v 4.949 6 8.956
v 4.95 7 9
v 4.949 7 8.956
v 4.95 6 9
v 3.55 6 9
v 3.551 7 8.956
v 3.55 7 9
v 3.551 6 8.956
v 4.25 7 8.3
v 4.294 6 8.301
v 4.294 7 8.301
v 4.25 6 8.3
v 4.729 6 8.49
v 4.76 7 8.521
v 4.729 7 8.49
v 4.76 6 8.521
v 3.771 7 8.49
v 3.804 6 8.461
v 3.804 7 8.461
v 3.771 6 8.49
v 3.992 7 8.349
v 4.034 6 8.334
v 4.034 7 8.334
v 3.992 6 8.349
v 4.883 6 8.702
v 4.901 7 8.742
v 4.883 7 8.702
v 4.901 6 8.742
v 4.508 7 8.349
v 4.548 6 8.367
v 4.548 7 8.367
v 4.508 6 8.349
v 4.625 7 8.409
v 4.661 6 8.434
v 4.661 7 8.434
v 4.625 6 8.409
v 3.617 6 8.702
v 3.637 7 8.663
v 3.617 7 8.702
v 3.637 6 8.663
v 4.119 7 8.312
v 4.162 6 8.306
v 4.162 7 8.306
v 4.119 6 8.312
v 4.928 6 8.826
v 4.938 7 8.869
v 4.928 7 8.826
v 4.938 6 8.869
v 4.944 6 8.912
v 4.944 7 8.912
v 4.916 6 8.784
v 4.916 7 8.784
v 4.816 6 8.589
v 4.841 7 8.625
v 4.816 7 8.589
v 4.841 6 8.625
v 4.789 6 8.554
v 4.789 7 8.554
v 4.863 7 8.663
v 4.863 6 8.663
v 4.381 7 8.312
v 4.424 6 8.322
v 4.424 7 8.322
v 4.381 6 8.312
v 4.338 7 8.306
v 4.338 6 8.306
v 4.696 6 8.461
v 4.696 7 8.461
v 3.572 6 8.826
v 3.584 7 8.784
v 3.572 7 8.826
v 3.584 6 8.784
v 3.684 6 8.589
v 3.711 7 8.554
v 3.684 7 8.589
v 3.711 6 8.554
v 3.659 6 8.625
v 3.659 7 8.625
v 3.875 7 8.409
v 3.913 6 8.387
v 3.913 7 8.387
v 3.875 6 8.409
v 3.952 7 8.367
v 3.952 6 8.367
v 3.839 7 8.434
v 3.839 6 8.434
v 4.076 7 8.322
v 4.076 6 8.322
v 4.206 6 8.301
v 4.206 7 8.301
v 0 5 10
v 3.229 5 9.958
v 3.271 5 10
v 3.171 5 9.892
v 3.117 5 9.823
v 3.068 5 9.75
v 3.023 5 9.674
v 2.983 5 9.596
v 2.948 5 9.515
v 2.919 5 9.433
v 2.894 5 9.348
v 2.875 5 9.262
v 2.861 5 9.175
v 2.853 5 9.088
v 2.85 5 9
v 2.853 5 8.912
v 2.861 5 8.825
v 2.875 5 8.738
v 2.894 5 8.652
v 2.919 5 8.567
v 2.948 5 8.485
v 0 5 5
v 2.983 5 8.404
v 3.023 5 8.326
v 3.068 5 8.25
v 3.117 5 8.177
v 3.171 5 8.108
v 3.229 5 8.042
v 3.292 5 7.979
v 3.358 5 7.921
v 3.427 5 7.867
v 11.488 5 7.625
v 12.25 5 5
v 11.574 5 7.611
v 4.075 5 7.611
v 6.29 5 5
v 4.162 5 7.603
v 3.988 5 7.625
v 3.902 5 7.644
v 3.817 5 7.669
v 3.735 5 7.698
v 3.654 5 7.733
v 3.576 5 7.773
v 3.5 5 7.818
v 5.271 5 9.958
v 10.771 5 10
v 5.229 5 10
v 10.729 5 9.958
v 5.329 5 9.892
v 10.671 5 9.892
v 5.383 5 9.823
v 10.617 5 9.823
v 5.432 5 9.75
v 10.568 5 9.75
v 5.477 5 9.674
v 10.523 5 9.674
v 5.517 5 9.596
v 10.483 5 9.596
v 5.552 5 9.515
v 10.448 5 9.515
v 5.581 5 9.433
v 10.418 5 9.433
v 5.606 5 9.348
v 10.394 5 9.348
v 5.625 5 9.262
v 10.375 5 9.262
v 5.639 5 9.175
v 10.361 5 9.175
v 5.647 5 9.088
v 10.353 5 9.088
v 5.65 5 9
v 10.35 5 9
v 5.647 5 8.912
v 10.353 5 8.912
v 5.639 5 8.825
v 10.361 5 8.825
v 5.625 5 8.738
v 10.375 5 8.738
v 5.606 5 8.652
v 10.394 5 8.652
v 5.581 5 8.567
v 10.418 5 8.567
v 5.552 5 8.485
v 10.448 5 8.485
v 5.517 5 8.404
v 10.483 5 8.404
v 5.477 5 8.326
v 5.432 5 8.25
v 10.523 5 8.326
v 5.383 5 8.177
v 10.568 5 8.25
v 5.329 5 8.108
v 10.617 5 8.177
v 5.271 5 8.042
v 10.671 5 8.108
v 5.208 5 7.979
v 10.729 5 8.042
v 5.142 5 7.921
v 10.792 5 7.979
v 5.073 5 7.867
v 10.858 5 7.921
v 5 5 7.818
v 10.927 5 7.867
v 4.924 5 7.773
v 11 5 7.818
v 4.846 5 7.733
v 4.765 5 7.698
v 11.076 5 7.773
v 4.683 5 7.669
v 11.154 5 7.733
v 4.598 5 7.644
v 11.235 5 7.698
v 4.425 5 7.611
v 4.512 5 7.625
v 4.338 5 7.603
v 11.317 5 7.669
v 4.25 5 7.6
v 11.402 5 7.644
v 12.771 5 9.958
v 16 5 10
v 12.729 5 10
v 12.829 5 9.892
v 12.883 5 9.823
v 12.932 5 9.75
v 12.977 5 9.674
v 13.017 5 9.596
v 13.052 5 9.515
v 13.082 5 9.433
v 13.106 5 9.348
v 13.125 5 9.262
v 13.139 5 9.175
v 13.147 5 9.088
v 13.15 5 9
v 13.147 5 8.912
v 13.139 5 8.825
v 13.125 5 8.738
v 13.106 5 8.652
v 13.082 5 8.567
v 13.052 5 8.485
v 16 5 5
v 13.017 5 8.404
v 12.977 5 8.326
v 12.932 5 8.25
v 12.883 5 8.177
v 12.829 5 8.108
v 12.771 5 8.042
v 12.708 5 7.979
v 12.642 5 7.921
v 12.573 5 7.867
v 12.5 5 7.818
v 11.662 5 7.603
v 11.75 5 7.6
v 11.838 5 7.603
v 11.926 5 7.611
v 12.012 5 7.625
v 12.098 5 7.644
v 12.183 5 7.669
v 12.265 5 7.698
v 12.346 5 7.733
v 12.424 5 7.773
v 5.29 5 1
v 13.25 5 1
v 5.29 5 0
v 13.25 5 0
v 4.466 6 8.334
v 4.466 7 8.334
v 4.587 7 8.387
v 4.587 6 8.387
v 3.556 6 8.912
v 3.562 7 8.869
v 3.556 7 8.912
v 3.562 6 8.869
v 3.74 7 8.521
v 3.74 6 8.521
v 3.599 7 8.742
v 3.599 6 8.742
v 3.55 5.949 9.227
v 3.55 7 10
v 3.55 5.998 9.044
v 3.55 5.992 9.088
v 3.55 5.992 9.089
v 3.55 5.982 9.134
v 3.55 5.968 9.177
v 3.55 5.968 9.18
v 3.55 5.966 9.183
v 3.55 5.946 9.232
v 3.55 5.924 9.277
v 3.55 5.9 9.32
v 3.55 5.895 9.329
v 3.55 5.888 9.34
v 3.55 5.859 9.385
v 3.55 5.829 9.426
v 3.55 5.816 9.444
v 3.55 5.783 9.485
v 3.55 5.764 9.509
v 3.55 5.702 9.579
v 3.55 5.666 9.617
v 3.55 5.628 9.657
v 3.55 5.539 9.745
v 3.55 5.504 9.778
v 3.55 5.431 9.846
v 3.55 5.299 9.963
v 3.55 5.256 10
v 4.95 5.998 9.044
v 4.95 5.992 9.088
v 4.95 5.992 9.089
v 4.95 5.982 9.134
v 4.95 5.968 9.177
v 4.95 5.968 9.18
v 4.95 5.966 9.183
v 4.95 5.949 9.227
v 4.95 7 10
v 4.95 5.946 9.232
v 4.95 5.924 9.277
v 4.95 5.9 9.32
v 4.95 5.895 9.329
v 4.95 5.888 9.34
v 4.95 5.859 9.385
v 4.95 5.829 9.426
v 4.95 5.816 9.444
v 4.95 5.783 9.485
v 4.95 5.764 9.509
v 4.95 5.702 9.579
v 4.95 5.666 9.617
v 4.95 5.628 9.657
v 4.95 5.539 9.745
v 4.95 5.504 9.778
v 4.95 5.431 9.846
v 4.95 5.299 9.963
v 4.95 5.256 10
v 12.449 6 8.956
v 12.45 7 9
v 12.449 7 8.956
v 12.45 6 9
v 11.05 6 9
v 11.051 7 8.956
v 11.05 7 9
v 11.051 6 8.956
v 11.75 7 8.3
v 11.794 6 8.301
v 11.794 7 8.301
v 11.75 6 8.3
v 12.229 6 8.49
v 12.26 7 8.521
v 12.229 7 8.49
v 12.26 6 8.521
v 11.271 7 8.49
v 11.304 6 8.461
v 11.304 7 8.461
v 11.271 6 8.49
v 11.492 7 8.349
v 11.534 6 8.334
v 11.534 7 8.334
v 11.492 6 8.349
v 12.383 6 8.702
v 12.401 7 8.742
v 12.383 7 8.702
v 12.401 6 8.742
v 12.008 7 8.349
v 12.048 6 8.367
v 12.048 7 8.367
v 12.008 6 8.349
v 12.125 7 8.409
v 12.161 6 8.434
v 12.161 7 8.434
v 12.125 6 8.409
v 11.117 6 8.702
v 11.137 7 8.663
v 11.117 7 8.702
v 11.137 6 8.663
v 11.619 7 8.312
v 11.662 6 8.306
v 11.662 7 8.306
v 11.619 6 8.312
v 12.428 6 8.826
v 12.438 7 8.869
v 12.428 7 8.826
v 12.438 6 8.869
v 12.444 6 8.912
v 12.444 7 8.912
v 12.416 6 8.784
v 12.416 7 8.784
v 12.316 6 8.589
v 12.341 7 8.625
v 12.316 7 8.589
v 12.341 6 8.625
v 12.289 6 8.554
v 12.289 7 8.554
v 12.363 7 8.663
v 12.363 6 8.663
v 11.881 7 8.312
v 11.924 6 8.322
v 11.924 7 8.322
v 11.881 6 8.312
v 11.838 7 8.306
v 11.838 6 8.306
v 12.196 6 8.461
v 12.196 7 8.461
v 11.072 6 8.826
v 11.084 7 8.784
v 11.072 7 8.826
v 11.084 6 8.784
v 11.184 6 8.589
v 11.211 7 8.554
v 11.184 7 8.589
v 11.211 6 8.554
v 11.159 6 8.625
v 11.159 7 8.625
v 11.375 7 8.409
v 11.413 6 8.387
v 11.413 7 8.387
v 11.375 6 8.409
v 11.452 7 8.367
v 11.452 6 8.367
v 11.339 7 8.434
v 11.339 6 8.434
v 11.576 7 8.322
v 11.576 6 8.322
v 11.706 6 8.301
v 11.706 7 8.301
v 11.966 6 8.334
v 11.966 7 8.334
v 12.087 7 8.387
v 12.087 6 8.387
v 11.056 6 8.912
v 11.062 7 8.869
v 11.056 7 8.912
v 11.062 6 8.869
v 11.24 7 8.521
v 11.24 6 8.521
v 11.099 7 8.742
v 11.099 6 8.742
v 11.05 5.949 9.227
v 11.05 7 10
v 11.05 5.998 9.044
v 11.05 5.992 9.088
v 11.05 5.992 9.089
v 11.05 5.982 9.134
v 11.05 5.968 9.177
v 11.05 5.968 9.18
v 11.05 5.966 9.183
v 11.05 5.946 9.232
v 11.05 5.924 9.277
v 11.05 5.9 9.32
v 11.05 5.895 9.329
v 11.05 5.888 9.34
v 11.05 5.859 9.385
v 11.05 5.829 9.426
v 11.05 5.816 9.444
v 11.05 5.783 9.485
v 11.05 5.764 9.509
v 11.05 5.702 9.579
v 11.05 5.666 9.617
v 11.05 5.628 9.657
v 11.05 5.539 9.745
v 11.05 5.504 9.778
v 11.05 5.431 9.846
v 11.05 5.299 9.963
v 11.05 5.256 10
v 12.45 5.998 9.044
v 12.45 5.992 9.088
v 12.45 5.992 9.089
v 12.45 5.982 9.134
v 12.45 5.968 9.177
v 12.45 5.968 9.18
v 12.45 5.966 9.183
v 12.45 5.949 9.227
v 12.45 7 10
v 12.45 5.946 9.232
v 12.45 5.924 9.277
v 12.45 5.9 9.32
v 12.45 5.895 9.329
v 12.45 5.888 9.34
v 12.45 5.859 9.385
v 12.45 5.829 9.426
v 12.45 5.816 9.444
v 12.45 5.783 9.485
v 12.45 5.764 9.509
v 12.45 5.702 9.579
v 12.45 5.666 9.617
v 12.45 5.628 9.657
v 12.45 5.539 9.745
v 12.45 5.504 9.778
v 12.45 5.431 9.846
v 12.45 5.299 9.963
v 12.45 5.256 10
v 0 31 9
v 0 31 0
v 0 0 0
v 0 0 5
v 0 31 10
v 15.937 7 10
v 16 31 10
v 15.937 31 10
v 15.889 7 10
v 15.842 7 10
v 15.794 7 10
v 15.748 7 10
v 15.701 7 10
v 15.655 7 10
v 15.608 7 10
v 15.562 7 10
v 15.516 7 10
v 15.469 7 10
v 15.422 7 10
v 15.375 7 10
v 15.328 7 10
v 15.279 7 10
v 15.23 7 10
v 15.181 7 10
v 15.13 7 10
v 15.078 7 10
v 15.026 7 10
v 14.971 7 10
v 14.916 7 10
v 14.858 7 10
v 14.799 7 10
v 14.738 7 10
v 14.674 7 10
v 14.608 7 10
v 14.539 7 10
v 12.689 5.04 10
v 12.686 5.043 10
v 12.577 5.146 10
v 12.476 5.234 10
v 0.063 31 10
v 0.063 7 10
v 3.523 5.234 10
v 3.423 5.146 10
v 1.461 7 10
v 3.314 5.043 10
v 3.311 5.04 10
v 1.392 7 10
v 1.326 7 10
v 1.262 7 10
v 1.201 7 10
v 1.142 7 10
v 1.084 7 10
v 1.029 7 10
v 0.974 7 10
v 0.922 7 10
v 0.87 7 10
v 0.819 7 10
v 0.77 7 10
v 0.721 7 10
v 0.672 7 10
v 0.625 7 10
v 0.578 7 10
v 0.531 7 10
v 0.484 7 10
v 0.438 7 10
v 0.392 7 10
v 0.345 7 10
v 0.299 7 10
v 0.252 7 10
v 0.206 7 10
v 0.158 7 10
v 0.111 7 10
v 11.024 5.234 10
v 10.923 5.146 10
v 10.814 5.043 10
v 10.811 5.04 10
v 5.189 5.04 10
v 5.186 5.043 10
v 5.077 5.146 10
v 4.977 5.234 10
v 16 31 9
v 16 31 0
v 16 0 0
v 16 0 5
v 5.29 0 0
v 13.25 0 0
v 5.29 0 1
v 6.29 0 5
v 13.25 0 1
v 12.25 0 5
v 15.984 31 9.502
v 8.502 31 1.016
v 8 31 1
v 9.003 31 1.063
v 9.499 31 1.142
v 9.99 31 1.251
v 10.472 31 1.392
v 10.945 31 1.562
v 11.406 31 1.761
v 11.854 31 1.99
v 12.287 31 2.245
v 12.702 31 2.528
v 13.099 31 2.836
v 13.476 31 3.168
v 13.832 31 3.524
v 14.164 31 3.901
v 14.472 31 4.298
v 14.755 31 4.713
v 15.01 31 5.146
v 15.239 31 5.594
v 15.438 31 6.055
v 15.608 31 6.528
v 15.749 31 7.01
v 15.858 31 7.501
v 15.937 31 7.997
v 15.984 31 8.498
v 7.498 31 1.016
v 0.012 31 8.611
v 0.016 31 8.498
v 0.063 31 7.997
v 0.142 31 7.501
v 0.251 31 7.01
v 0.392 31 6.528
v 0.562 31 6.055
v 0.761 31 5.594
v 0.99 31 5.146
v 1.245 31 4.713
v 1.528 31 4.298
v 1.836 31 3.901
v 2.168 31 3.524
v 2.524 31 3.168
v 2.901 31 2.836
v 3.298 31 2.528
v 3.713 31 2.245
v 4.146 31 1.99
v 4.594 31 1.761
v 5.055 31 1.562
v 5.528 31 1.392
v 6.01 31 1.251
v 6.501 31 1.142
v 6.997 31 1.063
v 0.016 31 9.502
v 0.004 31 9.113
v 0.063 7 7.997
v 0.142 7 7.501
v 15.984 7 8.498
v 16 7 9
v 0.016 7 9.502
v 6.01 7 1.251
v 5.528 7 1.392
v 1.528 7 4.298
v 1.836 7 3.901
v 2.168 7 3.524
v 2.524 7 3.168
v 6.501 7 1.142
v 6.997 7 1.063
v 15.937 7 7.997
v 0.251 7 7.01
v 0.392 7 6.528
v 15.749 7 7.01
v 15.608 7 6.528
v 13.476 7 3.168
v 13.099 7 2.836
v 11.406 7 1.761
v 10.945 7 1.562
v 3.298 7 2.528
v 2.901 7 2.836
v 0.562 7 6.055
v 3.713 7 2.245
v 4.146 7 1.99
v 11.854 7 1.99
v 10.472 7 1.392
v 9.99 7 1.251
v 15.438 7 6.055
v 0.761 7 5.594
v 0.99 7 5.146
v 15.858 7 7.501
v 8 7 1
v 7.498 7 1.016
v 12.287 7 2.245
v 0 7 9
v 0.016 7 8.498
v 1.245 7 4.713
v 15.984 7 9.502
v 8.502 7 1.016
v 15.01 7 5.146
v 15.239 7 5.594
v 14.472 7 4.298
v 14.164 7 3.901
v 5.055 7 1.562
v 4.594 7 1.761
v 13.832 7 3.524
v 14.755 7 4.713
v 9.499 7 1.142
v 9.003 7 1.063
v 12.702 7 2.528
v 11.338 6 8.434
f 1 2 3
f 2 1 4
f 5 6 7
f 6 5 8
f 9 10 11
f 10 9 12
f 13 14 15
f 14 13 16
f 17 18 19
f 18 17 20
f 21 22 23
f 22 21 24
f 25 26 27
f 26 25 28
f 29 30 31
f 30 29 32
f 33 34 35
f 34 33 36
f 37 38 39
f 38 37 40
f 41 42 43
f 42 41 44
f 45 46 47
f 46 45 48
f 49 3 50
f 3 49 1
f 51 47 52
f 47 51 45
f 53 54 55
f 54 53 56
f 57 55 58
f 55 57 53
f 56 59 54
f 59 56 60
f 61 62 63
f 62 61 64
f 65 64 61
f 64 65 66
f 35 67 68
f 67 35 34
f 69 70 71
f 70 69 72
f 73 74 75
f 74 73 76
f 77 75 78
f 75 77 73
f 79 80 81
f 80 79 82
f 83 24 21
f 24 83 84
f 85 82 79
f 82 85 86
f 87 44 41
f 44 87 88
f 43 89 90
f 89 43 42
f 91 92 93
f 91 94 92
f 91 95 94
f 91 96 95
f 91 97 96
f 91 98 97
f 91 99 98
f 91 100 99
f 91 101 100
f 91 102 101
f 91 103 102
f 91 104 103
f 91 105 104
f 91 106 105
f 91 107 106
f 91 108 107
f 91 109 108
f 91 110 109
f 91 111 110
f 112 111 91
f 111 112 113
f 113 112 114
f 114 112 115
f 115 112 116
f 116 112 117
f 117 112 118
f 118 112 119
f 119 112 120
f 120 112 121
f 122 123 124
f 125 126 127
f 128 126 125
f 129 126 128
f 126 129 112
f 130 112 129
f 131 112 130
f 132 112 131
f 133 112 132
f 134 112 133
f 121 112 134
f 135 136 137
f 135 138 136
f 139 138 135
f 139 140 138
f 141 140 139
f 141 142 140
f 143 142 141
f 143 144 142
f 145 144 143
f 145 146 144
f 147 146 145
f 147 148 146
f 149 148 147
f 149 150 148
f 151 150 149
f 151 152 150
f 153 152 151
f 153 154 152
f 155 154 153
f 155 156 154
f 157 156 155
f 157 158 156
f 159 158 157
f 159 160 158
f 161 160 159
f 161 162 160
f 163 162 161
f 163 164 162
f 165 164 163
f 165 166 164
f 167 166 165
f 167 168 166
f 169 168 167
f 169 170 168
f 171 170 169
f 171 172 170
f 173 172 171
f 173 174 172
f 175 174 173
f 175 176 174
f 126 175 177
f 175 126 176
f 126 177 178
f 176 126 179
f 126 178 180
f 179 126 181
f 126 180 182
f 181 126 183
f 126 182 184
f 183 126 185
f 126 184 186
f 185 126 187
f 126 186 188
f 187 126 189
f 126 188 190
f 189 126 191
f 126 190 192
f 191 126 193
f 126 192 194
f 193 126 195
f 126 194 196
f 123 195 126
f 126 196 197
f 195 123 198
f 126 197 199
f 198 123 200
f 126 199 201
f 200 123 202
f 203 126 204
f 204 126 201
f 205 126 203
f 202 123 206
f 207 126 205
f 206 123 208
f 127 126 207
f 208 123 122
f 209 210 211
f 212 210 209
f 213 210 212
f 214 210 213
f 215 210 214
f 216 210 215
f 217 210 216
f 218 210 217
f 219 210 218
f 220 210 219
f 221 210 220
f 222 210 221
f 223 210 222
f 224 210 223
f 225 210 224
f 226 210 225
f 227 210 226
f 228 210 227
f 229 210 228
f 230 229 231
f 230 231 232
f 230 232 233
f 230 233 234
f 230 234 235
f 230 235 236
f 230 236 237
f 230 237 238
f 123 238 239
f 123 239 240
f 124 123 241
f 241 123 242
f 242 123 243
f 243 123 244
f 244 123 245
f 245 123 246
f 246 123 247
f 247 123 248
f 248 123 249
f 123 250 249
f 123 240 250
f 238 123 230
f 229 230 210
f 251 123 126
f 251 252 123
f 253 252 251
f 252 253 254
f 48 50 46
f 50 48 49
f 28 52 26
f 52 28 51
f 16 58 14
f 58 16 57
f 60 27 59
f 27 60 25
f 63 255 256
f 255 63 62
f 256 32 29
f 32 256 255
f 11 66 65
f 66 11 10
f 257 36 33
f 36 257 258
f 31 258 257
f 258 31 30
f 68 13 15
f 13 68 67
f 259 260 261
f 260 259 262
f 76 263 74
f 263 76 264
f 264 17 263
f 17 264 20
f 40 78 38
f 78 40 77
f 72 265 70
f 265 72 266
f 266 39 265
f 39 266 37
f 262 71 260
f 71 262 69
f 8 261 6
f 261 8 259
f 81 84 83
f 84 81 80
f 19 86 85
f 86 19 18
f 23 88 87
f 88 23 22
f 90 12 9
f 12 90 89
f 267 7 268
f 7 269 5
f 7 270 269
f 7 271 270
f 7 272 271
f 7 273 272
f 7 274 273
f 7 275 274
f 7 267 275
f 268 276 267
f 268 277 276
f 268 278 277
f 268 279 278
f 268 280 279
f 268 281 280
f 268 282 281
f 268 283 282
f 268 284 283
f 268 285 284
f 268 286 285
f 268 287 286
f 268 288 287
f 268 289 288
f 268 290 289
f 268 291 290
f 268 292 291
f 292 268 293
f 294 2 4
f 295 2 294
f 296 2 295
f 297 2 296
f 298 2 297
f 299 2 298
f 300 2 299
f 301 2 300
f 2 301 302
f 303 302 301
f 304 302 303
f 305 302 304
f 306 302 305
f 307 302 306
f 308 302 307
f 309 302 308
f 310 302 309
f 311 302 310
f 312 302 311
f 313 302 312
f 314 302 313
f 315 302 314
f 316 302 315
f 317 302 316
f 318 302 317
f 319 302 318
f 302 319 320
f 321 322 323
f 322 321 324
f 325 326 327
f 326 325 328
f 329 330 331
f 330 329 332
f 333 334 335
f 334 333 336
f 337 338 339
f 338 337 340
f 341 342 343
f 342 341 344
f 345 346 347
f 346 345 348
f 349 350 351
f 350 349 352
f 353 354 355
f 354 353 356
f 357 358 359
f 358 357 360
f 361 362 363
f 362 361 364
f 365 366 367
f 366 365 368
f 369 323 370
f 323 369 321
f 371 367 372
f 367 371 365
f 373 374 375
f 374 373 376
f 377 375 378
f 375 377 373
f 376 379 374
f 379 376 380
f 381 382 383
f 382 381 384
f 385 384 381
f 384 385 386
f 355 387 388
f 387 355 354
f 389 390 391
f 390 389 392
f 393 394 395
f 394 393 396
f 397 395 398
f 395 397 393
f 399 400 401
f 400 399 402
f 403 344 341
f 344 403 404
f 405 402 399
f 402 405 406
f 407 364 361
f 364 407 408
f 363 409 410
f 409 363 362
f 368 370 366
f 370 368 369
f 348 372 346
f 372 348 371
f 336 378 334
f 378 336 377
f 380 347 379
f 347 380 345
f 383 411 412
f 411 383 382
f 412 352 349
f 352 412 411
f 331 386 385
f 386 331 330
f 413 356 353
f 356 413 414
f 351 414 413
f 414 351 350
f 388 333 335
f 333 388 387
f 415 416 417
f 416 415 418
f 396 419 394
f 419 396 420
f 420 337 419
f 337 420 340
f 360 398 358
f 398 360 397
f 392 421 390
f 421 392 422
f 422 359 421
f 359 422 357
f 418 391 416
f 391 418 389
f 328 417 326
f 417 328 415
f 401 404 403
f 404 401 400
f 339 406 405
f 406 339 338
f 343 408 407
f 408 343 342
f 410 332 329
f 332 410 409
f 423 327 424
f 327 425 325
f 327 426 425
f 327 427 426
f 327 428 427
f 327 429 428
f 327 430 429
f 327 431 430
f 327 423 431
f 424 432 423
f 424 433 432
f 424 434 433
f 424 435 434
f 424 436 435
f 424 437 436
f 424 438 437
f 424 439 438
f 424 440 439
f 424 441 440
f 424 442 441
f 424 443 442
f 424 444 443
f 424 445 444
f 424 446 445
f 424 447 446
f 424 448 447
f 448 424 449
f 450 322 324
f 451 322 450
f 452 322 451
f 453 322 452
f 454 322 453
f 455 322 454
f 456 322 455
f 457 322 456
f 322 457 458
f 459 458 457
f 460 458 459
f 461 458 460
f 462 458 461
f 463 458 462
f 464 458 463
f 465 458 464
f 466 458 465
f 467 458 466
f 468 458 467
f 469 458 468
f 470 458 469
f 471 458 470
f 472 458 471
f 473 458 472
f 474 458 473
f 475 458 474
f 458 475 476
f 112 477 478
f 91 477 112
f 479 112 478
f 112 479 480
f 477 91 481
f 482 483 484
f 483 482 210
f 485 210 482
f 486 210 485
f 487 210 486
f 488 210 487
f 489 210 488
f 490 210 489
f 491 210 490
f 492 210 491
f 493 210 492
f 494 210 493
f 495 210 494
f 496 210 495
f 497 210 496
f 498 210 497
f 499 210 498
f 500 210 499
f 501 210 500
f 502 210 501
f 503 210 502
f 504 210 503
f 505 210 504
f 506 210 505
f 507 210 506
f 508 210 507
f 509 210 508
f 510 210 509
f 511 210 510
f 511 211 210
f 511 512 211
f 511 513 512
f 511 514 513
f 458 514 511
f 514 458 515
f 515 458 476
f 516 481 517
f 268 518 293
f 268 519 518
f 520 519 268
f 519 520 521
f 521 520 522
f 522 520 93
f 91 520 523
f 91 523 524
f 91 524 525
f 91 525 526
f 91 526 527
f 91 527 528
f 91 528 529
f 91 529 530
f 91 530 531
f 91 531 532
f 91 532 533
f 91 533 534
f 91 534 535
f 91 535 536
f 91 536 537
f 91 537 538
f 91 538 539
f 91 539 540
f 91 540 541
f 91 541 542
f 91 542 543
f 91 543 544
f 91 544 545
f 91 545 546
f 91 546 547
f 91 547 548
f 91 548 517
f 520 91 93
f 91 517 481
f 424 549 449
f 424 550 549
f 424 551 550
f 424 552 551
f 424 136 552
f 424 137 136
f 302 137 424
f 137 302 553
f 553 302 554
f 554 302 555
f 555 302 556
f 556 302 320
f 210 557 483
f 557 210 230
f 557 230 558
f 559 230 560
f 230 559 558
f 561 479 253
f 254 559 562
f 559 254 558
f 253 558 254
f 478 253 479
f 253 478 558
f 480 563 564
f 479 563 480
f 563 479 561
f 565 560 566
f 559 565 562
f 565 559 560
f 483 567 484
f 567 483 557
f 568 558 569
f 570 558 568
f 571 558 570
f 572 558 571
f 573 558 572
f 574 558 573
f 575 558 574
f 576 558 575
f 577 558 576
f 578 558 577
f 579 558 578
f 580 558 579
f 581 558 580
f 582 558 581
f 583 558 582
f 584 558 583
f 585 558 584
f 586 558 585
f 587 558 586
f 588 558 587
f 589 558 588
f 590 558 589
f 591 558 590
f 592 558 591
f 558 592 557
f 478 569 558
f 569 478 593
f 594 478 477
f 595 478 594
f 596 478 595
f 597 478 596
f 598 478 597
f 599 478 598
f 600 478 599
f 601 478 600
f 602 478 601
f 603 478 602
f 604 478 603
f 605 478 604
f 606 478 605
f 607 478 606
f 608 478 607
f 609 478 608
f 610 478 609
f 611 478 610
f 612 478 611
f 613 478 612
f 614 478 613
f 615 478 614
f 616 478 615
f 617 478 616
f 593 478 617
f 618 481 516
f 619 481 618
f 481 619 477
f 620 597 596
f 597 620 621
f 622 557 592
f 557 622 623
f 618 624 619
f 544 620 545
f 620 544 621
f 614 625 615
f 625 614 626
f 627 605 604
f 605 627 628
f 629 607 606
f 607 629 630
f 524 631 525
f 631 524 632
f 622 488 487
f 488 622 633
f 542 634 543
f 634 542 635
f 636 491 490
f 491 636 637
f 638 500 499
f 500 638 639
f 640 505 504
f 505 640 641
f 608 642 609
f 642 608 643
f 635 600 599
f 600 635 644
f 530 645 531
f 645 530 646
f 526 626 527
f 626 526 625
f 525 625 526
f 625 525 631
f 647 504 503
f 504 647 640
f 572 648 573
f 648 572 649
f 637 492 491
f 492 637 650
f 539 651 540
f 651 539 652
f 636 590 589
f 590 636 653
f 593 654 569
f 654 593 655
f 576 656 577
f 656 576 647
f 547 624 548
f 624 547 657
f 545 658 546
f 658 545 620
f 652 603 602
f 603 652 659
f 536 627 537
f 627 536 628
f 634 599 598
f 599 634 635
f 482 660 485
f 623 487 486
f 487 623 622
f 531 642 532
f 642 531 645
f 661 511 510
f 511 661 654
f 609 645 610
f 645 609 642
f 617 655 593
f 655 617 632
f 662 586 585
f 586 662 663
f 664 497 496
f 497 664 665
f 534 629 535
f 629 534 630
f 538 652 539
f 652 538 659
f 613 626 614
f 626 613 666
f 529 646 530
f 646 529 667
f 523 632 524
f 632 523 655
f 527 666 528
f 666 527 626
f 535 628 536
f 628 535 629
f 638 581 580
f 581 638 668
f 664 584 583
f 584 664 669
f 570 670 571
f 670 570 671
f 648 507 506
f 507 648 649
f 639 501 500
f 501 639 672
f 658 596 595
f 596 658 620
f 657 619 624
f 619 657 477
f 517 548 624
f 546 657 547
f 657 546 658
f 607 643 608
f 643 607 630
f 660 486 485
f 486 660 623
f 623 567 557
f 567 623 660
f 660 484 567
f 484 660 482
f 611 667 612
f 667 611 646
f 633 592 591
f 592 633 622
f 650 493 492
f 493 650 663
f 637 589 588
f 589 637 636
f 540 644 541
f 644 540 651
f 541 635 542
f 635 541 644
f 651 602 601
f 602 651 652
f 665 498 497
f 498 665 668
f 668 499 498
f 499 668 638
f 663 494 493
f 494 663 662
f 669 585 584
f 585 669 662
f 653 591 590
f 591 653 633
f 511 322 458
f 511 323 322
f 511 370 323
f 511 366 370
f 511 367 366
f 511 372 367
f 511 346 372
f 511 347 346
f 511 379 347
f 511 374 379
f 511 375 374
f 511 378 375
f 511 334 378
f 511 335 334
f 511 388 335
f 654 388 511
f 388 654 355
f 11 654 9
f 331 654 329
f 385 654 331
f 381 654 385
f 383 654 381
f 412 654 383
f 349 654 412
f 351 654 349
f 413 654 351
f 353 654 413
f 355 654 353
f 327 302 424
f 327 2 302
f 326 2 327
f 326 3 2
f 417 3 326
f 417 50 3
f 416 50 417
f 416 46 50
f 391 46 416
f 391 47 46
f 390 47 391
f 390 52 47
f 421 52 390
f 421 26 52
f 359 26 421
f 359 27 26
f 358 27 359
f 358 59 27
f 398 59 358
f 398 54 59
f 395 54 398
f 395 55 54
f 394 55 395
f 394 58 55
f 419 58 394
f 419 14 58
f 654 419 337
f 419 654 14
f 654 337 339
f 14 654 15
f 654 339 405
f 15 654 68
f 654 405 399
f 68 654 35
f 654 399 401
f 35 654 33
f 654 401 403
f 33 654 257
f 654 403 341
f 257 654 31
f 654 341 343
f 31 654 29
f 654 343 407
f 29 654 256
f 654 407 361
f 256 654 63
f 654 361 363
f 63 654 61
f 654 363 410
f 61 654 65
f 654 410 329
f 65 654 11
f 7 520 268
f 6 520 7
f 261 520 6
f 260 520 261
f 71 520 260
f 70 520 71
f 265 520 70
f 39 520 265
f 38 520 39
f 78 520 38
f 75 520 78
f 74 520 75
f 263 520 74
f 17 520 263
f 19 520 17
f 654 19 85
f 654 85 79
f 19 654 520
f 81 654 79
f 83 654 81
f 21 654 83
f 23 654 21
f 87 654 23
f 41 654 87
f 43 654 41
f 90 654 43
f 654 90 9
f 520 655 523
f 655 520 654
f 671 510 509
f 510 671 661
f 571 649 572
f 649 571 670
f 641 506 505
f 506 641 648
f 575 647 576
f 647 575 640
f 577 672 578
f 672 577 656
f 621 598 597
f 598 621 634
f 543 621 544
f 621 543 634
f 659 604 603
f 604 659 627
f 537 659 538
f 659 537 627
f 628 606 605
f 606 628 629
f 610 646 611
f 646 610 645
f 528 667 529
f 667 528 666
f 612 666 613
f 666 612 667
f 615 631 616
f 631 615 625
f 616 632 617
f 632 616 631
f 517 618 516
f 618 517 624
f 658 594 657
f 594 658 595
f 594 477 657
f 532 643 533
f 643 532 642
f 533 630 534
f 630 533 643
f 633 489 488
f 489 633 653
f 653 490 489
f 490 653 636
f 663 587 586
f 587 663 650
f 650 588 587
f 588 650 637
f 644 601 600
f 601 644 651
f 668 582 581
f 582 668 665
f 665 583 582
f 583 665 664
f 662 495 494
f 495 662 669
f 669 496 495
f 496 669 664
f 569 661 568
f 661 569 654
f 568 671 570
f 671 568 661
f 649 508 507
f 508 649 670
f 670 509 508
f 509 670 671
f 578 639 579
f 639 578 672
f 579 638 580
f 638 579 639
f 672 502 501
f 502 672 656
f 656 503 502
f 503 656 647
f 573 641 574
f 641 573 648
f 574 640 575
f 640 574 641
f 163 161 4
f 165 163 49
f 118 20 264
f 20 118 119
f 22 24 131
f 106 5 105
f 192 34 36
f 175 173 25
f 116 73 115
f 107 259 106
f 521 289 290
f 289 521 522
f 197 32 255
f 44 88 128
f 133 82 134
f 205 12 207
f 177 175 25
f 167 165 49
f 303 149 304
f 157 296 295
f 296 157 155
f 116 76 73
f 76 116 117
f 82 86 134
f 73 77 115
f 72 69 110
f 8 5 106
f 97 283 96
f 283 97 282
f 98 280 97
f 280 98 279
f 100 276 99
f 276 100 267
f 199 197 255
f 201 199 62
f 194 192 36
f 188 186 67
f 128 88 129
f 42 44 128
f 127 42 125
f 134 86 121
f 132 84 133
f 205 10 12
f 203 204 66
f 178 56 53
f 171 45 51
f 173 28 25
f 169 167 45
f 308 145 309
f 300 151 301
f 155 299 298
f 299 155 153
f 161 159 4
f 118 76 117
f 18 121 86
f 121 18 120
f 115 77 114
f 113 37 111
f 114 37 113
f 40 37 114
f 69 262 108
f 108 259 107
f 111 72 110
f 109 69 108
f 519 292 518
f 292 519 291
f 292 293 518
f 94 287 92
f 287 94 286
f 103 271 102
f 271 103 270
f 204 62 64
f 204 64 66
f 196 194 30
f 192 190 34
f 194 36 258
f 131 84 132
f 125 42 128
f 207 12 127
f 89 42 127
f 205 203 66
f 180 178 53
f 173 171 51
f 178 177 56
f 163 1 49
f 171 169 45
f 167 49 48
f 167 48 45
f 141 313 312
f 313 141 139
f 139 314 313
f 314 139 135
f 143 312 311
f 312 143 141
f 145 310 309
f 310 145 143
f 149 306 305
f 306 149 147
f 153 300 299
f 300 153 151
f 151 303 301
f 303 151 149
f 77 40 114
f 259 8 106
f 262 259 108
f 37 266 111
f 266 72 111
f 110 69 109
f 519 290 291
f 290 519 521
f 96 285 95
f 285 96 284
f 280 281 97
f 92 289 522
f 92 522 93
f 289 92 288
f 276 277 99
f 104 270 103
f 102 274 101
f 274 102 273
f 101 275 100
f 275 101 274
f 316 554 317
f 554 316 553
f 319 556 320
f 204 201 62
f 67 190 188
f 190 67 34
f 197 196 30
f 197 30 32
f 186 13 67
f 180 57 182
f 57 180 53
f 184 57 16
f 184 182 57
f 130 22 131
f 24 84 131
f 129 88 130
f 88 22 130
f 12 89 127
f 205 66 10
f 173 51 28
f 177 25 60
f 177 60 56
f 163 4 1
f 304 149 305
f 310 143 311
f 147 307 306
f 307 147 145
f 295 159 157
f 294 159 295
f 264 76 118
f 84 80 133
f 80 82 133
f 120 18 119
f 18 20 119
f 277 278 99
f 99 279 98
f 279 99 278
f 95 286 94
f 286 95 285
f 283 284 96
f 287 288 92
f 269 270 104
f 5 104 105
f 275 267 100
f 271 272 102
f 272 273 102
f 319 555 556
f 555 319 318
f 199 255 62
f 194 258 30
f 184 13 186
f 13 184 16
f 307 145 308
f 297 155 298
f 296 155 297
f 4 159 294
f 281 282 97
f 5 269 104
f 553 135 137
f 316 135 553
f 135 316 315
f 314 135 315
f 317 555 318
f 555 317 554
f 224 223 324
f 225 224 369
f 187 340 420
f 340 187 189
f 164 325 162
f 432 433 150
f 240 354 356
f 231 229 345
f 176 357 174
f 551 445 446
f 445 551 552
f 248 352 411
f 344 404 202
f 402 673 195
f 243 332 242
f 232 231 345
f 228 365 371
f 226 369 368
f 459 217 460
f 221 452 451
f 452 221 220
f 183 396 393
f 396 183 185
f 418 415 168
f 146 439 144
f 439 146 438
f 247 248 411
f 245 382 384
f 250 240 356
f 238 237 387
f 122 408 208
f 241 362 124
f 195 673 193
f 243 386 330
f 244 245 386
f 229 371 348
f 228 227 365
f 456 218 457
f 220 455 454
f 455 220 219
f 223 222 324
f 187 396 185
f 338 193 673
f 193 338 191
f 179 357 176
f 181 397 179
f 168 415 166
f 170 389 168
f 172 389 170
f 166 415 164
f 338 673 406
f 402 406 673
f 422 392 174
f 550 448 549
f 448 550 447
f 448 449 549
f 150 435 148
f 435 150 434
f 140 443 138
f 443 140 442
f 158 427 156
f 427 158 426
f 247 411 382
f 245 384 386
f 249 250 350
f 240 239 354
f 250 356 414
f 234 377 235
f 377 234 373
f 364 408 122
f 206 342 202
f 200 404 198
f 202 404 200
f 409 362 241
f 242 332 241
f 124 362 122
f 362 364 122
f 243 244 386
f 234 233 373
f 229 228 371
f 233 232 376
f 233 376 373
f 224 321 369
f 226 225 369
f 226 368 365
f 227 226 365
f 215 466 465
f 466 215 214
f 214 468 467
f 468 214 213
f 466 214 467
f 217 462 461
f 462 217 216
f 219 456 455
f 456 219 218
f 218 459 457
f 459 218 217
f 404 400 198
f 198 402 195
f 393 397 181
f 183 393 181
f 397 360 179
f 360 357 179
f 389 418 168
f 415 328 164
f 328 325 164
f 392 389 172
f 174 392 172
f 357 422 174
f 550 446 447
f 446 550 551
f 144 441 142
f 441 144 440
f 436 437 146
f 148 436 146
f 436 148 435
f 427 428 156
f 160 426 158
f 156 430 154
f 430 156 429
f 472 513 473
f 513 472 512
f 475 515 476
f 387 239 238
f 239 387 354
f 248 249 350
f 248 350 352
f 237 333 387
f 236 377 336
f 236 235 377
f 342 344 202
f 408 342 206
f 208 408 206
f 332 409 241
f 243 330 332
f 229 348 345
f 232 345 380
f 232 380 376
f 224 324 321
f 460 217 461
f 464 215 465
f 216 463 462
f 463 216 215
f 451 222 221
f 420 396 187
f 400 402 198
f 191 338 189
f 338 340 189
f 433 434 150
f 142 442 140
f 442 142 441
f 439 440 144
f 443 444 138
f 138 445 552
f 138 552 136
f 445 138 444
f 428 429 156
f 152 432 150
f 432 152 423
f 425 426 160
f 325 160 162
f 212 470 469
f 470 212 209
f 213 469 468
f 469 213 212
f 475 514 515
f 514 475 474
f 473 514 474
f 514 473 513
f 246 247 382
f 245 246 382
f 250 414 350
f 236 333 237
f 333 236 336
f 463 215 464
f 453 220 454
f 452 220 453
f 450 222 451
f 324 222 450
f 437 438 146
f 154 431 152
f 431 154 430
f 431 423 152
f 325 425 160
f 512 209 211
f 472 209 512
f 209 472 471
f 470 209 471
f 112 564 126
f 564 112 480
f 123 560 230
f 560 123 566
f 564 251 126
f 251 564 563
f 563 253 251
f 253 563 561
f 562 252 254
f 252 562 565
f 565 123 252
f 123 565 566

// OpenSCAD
$fn=100;
/*
Customizable Capacitor leg bending tool
Brian Khuu 2019

This assist in bending capacitor legs in a consistent manner.

Default Values based on a 30F Supercap https://docs-apac.rs-online.com/webdocs/14e3/0900766b814e39c2.pdf

*/


/** Capacitor Spec **/

// Capacitor Diameter
capd=16;

// Capacitor Length
capl=31;

// Capacitor Pin Spacing
cap_pin_spacing=7.5;

// Capacitor Pin Diameter
cap_pin_dia=1.4;

/** Object Spec **/

// Base Height
base_h=1;

// Leg Guide Length
leg_guide=5;

/** Pin Offset **/

// Pin offset of left leg
pin_offset_1 = 1;

// Pin offset of right leg
pin_offset_2 = 0;

// Pin Pitch Increment
pin_pitch = 2.54;

/* Calc */
cap_radius=capd/2;

difference()
{
    cube([capd,capl,cap_radius+base_h+1]);
    
    // Cap Guide
    translate([cap_radius,leg_guide+2,cap_radius+base_h])
    rotate([-90,0,0])
    cylinder(r=capd/2, h=capl);
    
    // Cap Pin
    translate([cap_radius-cap_pin_spacing/2,leg_guide,cap_radius+base_h])
    union()
    {
      rotate([-90,0,0])
        cylinder(r=cap_pin_dia/2, h=4);
      translate([-cap_pin_dia/2,-0.5,0])
        cube([cap_pin_dia,4,2]);
    }

    translate([cap_radius+cap_pin_spacing/2,leg_guide,cap_radius+base_h])
    union()
    {
      rotate([-90,0,0])
        cylinder(r=cap_pin_dia/2, h=4);
      translate([-cap_pin_dia/2,-0.5,0])
        cube([cap_pin_dia,4,2]);
    }
    
    // Cap Pin Bevel
    translate([cap_radius-cap_pin_spacing/2,leg_guide,cap_radius+base_h])
    rotate([-90,0,0])
    cylinder(r1=cap_pin_dia, r2=cap_pin_dia/2, h=1);
    
    translate([cap_radius+cap_pin_spacing/2,leg_guide,cap_radius+base_h])
    rotate([-90,0,0])
    cylinder(r1=cap_pin_dia, r2=cap_pin_dia/2, h=1);
    
    // Jig Ledge
    translate([0,0,base_h+cap_radius/2])
    cube([capd,leg_guide,cap_radius+base_h]);

    // Pin Gap
    hull()
    {
      translate([cap_radius-cap_pin_spacing/2 - 1/2 + pin_offset_1*pin_pitch,0,0])
        cube([1,leg_guide,base_h+cap_radius/2]);        
      translate([cap_radius+cap_pin_spacing/2 - 1/2 + pin_offset_2*pin_pitch,0,0])
        cube([1,leg_guide,base_h+cap_radius/2]);        
    }
    hull()
    {
      translate([cap_radius-cap_pin_spacing/2 - 1/2 + pin_offset_1*pin_pitch,0,0])
        cube([1,leg_guide,base_h+cap_radius/2]);        
      translate([cap_radius+cap_pin_spacing/2 - 1/2 + pin_offset_2*pin_pitch,0,0])
        cube([1,leg_guide,base_h+cap_radius/2]);

      translate([cap_radius-cap_pin_spacing/2 - 1/2 + pin_offset_1*pin_pitch-1,0,0])
        cube([1,leg_guide,1]);        
      translate([cap_radius+cap_pin_spacing/2 - 1/2 + pin_offset_2*pin_pitch+1,0,0])
        cube([1,leg_guide,1]);
    }
}
